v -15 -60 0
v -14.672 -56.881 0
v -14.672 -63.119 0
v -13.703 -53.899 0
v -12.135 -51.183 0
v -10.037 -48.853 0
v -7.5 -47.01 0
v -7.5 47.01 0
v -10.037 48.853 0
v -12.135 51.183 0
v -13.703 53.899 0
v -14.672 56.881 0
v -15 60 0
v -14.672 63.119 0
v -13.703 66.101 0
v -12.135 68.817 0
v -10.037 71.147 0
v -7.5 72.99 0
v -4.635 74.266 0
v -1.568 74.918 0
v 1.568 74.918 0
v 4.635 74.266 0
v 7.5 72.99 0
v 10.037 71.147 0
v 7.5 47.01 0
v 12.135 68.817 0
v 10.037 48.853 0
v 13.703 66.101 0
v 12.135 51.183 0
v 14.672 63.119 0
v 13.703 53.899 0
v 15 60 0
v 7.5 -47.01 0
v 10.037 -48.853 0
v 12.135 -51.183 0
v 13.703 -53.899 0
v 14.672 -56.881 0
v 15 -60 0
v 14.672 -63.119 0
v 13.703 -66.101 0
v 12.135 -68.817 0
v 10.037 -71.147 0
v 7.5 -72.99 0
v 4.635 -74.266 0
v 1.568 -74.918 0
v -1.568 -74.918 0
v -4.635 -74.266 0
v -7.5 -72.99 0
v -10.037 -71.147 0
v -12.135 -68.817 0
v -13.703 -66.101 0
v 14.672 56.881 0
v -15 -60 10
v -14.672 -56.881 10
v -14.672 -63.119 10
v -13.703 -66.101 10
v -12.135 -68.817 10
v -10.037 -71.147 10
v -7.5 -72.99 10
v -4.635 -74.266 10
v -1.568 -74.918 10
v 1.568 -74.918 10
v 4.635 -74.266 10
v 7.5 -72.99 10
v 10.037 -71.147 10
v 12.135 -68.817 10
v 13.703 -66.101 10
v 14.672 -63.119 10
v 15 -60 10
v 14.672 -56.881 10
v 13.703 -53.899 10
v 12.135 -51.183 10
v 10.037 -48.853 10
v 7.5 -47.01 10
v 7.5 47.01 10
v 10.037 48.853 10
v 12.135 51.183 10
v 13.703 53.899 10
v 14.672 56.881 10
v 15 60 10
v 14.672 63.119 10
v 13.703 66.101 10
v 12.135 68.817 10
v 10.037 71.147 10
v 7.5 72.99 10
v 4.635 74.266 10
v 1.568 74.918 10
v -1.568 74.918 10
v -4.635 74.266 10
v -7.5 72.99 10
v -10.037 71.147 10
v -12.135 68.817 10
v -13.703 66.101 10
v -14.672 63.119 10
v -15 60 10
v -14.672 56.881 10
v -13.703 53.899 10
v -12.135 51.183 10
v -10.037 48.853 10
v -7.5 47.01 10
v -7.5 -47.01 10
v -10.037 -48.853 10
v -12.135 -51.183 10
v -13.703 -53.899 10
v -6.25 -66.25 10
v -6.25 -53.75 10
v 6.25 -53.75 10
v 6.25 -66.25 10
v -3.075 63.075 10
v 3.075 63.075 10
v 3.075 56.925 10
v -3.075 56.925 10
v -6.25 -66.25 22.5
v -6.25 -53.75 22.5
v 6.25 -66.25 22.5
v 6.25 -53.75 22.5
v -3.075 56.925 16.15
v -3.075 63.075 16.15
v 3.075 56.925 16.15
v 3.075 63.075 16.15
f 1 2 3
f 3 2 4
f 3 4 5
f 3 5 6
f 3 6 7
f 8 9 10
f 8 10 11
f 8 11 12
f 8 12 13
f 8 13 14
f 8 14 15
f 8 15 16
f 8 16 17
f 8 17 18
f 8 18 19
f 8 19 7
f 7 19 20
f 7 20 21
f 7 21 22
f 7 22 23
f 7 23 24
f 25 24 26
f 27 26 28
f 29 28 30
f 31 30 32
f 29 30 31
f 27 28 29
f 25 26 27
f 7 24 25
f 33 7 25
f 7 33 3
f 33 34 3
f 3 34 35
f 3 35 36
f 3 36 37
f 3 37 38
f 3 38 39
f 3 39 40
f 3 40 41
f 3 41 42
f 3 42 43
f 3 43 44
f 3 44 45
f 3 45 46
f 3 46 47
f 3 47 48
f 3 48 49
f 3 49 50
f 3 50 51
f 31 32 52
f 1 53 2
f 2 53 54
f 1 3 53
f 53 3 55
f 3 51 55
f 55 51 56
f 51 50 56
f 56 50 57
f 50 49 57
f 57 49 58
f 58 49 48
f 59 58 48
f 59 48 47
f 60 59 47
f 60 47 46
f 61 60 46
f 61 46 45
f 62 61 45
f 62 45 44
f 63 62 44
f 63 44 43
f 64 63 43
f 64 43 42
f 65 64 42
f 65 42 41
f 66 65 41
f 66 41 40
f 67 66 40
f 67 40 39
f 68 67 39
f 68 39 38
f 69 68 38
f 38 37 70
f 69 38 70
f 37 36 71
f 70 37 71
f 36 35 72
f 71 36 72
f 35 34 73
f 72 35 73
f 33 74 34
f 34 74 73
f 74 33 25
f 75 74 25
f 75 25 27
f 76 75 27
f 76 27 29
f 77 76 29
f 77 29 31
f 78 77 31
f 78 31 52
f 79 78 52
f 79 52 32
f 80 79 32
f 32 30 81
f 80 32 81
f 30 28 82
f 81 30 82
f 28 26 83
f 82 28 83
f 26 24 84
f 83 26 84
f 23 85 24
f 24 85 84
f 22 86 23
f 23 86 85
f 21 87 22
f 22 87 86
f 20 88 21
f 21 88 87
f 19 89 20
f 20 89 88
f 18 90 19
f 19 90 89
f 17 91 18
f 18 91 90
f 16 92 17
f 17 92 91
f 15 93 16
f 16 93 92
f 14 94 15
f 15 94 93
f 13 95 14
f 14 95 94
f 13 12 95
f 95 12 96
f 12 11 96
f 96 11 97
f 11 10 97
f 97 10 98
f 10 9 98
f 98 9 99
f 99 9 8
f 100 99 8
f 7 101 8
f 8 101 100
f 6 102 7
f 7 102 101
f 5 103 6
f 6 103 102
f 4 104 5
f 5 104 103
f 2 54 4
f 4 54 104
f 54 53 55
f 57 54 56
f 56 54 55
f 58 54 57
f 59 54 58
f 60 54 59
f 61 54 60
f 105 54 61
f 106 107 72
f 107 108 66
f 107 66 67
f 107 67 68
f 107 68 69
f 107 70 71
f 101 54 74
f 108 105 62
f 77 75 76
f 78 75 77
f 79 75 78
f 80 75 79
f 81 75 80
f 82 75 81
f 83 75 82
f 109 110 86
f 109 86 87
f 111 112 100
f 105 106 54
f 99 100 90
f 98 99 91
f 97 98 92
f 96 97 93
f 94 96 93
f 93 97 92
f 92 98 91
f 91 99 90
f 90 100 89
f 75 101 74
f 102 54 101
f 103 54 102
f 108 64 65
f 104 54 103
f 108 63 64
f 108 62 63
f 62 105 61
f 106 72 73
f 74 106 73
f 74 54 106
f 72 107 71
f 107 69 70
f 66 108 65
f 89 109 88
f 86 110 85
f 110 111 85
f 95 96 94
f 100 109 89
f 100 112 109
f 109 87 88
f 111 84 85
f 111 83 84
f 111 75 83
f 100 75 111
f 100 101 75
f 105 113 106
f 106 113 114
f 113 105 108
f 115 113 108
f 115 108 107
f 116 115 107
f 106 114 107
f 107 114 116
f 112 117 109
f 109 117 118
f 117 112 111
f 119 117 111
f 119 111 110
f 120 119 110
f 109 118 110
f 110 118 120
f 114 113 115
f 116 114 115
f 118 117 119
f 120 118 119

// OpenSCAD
//Socket wrench (customizable)

// size of drive 1
drive1 = 6.35;
// size of drive 2
drive2 = 12.7;
// drive size tolerance
tolerance = 0.2;

tolDrive1 = drive1 - tolerance;
tolDrive2 = drive2 - tolerance;

D = 15;
// MARGIN	
M = D/2; 	
// HEIGHT (THICKNESS) OF TOOL in mm
H = 10;
// TOTAL LENGTH OF TOOL in mm
Ltot = 150; 	

// Length from Center of One Side to Center of Other Side
L = Ltot-2*(D/2+M);
union()
{
	//Jamesdavid's parametric wrench
	difference() {
		union() {
			translate([0,L/2,H/2]) {
				cylinder(r = (D/2+M), h = H,center = true);
			}
			translate([0,-L/2,H/2]) {
				cylinder(r = (D/2+M), h = H,center = true);
			}
			translate([-1*D/2,-L/2,0]) {
				cube([D,L,H], center=false);
			}
		}
	}
	
	//socket drives
	translate([0, L/2, H+(tolDrive1/2)])
	cube(size = tolDrive1, center = true);

	translate([0, -L/2, H+(tolDrive2/2)])
	cube(size = tolDrive2, center = true);
}
